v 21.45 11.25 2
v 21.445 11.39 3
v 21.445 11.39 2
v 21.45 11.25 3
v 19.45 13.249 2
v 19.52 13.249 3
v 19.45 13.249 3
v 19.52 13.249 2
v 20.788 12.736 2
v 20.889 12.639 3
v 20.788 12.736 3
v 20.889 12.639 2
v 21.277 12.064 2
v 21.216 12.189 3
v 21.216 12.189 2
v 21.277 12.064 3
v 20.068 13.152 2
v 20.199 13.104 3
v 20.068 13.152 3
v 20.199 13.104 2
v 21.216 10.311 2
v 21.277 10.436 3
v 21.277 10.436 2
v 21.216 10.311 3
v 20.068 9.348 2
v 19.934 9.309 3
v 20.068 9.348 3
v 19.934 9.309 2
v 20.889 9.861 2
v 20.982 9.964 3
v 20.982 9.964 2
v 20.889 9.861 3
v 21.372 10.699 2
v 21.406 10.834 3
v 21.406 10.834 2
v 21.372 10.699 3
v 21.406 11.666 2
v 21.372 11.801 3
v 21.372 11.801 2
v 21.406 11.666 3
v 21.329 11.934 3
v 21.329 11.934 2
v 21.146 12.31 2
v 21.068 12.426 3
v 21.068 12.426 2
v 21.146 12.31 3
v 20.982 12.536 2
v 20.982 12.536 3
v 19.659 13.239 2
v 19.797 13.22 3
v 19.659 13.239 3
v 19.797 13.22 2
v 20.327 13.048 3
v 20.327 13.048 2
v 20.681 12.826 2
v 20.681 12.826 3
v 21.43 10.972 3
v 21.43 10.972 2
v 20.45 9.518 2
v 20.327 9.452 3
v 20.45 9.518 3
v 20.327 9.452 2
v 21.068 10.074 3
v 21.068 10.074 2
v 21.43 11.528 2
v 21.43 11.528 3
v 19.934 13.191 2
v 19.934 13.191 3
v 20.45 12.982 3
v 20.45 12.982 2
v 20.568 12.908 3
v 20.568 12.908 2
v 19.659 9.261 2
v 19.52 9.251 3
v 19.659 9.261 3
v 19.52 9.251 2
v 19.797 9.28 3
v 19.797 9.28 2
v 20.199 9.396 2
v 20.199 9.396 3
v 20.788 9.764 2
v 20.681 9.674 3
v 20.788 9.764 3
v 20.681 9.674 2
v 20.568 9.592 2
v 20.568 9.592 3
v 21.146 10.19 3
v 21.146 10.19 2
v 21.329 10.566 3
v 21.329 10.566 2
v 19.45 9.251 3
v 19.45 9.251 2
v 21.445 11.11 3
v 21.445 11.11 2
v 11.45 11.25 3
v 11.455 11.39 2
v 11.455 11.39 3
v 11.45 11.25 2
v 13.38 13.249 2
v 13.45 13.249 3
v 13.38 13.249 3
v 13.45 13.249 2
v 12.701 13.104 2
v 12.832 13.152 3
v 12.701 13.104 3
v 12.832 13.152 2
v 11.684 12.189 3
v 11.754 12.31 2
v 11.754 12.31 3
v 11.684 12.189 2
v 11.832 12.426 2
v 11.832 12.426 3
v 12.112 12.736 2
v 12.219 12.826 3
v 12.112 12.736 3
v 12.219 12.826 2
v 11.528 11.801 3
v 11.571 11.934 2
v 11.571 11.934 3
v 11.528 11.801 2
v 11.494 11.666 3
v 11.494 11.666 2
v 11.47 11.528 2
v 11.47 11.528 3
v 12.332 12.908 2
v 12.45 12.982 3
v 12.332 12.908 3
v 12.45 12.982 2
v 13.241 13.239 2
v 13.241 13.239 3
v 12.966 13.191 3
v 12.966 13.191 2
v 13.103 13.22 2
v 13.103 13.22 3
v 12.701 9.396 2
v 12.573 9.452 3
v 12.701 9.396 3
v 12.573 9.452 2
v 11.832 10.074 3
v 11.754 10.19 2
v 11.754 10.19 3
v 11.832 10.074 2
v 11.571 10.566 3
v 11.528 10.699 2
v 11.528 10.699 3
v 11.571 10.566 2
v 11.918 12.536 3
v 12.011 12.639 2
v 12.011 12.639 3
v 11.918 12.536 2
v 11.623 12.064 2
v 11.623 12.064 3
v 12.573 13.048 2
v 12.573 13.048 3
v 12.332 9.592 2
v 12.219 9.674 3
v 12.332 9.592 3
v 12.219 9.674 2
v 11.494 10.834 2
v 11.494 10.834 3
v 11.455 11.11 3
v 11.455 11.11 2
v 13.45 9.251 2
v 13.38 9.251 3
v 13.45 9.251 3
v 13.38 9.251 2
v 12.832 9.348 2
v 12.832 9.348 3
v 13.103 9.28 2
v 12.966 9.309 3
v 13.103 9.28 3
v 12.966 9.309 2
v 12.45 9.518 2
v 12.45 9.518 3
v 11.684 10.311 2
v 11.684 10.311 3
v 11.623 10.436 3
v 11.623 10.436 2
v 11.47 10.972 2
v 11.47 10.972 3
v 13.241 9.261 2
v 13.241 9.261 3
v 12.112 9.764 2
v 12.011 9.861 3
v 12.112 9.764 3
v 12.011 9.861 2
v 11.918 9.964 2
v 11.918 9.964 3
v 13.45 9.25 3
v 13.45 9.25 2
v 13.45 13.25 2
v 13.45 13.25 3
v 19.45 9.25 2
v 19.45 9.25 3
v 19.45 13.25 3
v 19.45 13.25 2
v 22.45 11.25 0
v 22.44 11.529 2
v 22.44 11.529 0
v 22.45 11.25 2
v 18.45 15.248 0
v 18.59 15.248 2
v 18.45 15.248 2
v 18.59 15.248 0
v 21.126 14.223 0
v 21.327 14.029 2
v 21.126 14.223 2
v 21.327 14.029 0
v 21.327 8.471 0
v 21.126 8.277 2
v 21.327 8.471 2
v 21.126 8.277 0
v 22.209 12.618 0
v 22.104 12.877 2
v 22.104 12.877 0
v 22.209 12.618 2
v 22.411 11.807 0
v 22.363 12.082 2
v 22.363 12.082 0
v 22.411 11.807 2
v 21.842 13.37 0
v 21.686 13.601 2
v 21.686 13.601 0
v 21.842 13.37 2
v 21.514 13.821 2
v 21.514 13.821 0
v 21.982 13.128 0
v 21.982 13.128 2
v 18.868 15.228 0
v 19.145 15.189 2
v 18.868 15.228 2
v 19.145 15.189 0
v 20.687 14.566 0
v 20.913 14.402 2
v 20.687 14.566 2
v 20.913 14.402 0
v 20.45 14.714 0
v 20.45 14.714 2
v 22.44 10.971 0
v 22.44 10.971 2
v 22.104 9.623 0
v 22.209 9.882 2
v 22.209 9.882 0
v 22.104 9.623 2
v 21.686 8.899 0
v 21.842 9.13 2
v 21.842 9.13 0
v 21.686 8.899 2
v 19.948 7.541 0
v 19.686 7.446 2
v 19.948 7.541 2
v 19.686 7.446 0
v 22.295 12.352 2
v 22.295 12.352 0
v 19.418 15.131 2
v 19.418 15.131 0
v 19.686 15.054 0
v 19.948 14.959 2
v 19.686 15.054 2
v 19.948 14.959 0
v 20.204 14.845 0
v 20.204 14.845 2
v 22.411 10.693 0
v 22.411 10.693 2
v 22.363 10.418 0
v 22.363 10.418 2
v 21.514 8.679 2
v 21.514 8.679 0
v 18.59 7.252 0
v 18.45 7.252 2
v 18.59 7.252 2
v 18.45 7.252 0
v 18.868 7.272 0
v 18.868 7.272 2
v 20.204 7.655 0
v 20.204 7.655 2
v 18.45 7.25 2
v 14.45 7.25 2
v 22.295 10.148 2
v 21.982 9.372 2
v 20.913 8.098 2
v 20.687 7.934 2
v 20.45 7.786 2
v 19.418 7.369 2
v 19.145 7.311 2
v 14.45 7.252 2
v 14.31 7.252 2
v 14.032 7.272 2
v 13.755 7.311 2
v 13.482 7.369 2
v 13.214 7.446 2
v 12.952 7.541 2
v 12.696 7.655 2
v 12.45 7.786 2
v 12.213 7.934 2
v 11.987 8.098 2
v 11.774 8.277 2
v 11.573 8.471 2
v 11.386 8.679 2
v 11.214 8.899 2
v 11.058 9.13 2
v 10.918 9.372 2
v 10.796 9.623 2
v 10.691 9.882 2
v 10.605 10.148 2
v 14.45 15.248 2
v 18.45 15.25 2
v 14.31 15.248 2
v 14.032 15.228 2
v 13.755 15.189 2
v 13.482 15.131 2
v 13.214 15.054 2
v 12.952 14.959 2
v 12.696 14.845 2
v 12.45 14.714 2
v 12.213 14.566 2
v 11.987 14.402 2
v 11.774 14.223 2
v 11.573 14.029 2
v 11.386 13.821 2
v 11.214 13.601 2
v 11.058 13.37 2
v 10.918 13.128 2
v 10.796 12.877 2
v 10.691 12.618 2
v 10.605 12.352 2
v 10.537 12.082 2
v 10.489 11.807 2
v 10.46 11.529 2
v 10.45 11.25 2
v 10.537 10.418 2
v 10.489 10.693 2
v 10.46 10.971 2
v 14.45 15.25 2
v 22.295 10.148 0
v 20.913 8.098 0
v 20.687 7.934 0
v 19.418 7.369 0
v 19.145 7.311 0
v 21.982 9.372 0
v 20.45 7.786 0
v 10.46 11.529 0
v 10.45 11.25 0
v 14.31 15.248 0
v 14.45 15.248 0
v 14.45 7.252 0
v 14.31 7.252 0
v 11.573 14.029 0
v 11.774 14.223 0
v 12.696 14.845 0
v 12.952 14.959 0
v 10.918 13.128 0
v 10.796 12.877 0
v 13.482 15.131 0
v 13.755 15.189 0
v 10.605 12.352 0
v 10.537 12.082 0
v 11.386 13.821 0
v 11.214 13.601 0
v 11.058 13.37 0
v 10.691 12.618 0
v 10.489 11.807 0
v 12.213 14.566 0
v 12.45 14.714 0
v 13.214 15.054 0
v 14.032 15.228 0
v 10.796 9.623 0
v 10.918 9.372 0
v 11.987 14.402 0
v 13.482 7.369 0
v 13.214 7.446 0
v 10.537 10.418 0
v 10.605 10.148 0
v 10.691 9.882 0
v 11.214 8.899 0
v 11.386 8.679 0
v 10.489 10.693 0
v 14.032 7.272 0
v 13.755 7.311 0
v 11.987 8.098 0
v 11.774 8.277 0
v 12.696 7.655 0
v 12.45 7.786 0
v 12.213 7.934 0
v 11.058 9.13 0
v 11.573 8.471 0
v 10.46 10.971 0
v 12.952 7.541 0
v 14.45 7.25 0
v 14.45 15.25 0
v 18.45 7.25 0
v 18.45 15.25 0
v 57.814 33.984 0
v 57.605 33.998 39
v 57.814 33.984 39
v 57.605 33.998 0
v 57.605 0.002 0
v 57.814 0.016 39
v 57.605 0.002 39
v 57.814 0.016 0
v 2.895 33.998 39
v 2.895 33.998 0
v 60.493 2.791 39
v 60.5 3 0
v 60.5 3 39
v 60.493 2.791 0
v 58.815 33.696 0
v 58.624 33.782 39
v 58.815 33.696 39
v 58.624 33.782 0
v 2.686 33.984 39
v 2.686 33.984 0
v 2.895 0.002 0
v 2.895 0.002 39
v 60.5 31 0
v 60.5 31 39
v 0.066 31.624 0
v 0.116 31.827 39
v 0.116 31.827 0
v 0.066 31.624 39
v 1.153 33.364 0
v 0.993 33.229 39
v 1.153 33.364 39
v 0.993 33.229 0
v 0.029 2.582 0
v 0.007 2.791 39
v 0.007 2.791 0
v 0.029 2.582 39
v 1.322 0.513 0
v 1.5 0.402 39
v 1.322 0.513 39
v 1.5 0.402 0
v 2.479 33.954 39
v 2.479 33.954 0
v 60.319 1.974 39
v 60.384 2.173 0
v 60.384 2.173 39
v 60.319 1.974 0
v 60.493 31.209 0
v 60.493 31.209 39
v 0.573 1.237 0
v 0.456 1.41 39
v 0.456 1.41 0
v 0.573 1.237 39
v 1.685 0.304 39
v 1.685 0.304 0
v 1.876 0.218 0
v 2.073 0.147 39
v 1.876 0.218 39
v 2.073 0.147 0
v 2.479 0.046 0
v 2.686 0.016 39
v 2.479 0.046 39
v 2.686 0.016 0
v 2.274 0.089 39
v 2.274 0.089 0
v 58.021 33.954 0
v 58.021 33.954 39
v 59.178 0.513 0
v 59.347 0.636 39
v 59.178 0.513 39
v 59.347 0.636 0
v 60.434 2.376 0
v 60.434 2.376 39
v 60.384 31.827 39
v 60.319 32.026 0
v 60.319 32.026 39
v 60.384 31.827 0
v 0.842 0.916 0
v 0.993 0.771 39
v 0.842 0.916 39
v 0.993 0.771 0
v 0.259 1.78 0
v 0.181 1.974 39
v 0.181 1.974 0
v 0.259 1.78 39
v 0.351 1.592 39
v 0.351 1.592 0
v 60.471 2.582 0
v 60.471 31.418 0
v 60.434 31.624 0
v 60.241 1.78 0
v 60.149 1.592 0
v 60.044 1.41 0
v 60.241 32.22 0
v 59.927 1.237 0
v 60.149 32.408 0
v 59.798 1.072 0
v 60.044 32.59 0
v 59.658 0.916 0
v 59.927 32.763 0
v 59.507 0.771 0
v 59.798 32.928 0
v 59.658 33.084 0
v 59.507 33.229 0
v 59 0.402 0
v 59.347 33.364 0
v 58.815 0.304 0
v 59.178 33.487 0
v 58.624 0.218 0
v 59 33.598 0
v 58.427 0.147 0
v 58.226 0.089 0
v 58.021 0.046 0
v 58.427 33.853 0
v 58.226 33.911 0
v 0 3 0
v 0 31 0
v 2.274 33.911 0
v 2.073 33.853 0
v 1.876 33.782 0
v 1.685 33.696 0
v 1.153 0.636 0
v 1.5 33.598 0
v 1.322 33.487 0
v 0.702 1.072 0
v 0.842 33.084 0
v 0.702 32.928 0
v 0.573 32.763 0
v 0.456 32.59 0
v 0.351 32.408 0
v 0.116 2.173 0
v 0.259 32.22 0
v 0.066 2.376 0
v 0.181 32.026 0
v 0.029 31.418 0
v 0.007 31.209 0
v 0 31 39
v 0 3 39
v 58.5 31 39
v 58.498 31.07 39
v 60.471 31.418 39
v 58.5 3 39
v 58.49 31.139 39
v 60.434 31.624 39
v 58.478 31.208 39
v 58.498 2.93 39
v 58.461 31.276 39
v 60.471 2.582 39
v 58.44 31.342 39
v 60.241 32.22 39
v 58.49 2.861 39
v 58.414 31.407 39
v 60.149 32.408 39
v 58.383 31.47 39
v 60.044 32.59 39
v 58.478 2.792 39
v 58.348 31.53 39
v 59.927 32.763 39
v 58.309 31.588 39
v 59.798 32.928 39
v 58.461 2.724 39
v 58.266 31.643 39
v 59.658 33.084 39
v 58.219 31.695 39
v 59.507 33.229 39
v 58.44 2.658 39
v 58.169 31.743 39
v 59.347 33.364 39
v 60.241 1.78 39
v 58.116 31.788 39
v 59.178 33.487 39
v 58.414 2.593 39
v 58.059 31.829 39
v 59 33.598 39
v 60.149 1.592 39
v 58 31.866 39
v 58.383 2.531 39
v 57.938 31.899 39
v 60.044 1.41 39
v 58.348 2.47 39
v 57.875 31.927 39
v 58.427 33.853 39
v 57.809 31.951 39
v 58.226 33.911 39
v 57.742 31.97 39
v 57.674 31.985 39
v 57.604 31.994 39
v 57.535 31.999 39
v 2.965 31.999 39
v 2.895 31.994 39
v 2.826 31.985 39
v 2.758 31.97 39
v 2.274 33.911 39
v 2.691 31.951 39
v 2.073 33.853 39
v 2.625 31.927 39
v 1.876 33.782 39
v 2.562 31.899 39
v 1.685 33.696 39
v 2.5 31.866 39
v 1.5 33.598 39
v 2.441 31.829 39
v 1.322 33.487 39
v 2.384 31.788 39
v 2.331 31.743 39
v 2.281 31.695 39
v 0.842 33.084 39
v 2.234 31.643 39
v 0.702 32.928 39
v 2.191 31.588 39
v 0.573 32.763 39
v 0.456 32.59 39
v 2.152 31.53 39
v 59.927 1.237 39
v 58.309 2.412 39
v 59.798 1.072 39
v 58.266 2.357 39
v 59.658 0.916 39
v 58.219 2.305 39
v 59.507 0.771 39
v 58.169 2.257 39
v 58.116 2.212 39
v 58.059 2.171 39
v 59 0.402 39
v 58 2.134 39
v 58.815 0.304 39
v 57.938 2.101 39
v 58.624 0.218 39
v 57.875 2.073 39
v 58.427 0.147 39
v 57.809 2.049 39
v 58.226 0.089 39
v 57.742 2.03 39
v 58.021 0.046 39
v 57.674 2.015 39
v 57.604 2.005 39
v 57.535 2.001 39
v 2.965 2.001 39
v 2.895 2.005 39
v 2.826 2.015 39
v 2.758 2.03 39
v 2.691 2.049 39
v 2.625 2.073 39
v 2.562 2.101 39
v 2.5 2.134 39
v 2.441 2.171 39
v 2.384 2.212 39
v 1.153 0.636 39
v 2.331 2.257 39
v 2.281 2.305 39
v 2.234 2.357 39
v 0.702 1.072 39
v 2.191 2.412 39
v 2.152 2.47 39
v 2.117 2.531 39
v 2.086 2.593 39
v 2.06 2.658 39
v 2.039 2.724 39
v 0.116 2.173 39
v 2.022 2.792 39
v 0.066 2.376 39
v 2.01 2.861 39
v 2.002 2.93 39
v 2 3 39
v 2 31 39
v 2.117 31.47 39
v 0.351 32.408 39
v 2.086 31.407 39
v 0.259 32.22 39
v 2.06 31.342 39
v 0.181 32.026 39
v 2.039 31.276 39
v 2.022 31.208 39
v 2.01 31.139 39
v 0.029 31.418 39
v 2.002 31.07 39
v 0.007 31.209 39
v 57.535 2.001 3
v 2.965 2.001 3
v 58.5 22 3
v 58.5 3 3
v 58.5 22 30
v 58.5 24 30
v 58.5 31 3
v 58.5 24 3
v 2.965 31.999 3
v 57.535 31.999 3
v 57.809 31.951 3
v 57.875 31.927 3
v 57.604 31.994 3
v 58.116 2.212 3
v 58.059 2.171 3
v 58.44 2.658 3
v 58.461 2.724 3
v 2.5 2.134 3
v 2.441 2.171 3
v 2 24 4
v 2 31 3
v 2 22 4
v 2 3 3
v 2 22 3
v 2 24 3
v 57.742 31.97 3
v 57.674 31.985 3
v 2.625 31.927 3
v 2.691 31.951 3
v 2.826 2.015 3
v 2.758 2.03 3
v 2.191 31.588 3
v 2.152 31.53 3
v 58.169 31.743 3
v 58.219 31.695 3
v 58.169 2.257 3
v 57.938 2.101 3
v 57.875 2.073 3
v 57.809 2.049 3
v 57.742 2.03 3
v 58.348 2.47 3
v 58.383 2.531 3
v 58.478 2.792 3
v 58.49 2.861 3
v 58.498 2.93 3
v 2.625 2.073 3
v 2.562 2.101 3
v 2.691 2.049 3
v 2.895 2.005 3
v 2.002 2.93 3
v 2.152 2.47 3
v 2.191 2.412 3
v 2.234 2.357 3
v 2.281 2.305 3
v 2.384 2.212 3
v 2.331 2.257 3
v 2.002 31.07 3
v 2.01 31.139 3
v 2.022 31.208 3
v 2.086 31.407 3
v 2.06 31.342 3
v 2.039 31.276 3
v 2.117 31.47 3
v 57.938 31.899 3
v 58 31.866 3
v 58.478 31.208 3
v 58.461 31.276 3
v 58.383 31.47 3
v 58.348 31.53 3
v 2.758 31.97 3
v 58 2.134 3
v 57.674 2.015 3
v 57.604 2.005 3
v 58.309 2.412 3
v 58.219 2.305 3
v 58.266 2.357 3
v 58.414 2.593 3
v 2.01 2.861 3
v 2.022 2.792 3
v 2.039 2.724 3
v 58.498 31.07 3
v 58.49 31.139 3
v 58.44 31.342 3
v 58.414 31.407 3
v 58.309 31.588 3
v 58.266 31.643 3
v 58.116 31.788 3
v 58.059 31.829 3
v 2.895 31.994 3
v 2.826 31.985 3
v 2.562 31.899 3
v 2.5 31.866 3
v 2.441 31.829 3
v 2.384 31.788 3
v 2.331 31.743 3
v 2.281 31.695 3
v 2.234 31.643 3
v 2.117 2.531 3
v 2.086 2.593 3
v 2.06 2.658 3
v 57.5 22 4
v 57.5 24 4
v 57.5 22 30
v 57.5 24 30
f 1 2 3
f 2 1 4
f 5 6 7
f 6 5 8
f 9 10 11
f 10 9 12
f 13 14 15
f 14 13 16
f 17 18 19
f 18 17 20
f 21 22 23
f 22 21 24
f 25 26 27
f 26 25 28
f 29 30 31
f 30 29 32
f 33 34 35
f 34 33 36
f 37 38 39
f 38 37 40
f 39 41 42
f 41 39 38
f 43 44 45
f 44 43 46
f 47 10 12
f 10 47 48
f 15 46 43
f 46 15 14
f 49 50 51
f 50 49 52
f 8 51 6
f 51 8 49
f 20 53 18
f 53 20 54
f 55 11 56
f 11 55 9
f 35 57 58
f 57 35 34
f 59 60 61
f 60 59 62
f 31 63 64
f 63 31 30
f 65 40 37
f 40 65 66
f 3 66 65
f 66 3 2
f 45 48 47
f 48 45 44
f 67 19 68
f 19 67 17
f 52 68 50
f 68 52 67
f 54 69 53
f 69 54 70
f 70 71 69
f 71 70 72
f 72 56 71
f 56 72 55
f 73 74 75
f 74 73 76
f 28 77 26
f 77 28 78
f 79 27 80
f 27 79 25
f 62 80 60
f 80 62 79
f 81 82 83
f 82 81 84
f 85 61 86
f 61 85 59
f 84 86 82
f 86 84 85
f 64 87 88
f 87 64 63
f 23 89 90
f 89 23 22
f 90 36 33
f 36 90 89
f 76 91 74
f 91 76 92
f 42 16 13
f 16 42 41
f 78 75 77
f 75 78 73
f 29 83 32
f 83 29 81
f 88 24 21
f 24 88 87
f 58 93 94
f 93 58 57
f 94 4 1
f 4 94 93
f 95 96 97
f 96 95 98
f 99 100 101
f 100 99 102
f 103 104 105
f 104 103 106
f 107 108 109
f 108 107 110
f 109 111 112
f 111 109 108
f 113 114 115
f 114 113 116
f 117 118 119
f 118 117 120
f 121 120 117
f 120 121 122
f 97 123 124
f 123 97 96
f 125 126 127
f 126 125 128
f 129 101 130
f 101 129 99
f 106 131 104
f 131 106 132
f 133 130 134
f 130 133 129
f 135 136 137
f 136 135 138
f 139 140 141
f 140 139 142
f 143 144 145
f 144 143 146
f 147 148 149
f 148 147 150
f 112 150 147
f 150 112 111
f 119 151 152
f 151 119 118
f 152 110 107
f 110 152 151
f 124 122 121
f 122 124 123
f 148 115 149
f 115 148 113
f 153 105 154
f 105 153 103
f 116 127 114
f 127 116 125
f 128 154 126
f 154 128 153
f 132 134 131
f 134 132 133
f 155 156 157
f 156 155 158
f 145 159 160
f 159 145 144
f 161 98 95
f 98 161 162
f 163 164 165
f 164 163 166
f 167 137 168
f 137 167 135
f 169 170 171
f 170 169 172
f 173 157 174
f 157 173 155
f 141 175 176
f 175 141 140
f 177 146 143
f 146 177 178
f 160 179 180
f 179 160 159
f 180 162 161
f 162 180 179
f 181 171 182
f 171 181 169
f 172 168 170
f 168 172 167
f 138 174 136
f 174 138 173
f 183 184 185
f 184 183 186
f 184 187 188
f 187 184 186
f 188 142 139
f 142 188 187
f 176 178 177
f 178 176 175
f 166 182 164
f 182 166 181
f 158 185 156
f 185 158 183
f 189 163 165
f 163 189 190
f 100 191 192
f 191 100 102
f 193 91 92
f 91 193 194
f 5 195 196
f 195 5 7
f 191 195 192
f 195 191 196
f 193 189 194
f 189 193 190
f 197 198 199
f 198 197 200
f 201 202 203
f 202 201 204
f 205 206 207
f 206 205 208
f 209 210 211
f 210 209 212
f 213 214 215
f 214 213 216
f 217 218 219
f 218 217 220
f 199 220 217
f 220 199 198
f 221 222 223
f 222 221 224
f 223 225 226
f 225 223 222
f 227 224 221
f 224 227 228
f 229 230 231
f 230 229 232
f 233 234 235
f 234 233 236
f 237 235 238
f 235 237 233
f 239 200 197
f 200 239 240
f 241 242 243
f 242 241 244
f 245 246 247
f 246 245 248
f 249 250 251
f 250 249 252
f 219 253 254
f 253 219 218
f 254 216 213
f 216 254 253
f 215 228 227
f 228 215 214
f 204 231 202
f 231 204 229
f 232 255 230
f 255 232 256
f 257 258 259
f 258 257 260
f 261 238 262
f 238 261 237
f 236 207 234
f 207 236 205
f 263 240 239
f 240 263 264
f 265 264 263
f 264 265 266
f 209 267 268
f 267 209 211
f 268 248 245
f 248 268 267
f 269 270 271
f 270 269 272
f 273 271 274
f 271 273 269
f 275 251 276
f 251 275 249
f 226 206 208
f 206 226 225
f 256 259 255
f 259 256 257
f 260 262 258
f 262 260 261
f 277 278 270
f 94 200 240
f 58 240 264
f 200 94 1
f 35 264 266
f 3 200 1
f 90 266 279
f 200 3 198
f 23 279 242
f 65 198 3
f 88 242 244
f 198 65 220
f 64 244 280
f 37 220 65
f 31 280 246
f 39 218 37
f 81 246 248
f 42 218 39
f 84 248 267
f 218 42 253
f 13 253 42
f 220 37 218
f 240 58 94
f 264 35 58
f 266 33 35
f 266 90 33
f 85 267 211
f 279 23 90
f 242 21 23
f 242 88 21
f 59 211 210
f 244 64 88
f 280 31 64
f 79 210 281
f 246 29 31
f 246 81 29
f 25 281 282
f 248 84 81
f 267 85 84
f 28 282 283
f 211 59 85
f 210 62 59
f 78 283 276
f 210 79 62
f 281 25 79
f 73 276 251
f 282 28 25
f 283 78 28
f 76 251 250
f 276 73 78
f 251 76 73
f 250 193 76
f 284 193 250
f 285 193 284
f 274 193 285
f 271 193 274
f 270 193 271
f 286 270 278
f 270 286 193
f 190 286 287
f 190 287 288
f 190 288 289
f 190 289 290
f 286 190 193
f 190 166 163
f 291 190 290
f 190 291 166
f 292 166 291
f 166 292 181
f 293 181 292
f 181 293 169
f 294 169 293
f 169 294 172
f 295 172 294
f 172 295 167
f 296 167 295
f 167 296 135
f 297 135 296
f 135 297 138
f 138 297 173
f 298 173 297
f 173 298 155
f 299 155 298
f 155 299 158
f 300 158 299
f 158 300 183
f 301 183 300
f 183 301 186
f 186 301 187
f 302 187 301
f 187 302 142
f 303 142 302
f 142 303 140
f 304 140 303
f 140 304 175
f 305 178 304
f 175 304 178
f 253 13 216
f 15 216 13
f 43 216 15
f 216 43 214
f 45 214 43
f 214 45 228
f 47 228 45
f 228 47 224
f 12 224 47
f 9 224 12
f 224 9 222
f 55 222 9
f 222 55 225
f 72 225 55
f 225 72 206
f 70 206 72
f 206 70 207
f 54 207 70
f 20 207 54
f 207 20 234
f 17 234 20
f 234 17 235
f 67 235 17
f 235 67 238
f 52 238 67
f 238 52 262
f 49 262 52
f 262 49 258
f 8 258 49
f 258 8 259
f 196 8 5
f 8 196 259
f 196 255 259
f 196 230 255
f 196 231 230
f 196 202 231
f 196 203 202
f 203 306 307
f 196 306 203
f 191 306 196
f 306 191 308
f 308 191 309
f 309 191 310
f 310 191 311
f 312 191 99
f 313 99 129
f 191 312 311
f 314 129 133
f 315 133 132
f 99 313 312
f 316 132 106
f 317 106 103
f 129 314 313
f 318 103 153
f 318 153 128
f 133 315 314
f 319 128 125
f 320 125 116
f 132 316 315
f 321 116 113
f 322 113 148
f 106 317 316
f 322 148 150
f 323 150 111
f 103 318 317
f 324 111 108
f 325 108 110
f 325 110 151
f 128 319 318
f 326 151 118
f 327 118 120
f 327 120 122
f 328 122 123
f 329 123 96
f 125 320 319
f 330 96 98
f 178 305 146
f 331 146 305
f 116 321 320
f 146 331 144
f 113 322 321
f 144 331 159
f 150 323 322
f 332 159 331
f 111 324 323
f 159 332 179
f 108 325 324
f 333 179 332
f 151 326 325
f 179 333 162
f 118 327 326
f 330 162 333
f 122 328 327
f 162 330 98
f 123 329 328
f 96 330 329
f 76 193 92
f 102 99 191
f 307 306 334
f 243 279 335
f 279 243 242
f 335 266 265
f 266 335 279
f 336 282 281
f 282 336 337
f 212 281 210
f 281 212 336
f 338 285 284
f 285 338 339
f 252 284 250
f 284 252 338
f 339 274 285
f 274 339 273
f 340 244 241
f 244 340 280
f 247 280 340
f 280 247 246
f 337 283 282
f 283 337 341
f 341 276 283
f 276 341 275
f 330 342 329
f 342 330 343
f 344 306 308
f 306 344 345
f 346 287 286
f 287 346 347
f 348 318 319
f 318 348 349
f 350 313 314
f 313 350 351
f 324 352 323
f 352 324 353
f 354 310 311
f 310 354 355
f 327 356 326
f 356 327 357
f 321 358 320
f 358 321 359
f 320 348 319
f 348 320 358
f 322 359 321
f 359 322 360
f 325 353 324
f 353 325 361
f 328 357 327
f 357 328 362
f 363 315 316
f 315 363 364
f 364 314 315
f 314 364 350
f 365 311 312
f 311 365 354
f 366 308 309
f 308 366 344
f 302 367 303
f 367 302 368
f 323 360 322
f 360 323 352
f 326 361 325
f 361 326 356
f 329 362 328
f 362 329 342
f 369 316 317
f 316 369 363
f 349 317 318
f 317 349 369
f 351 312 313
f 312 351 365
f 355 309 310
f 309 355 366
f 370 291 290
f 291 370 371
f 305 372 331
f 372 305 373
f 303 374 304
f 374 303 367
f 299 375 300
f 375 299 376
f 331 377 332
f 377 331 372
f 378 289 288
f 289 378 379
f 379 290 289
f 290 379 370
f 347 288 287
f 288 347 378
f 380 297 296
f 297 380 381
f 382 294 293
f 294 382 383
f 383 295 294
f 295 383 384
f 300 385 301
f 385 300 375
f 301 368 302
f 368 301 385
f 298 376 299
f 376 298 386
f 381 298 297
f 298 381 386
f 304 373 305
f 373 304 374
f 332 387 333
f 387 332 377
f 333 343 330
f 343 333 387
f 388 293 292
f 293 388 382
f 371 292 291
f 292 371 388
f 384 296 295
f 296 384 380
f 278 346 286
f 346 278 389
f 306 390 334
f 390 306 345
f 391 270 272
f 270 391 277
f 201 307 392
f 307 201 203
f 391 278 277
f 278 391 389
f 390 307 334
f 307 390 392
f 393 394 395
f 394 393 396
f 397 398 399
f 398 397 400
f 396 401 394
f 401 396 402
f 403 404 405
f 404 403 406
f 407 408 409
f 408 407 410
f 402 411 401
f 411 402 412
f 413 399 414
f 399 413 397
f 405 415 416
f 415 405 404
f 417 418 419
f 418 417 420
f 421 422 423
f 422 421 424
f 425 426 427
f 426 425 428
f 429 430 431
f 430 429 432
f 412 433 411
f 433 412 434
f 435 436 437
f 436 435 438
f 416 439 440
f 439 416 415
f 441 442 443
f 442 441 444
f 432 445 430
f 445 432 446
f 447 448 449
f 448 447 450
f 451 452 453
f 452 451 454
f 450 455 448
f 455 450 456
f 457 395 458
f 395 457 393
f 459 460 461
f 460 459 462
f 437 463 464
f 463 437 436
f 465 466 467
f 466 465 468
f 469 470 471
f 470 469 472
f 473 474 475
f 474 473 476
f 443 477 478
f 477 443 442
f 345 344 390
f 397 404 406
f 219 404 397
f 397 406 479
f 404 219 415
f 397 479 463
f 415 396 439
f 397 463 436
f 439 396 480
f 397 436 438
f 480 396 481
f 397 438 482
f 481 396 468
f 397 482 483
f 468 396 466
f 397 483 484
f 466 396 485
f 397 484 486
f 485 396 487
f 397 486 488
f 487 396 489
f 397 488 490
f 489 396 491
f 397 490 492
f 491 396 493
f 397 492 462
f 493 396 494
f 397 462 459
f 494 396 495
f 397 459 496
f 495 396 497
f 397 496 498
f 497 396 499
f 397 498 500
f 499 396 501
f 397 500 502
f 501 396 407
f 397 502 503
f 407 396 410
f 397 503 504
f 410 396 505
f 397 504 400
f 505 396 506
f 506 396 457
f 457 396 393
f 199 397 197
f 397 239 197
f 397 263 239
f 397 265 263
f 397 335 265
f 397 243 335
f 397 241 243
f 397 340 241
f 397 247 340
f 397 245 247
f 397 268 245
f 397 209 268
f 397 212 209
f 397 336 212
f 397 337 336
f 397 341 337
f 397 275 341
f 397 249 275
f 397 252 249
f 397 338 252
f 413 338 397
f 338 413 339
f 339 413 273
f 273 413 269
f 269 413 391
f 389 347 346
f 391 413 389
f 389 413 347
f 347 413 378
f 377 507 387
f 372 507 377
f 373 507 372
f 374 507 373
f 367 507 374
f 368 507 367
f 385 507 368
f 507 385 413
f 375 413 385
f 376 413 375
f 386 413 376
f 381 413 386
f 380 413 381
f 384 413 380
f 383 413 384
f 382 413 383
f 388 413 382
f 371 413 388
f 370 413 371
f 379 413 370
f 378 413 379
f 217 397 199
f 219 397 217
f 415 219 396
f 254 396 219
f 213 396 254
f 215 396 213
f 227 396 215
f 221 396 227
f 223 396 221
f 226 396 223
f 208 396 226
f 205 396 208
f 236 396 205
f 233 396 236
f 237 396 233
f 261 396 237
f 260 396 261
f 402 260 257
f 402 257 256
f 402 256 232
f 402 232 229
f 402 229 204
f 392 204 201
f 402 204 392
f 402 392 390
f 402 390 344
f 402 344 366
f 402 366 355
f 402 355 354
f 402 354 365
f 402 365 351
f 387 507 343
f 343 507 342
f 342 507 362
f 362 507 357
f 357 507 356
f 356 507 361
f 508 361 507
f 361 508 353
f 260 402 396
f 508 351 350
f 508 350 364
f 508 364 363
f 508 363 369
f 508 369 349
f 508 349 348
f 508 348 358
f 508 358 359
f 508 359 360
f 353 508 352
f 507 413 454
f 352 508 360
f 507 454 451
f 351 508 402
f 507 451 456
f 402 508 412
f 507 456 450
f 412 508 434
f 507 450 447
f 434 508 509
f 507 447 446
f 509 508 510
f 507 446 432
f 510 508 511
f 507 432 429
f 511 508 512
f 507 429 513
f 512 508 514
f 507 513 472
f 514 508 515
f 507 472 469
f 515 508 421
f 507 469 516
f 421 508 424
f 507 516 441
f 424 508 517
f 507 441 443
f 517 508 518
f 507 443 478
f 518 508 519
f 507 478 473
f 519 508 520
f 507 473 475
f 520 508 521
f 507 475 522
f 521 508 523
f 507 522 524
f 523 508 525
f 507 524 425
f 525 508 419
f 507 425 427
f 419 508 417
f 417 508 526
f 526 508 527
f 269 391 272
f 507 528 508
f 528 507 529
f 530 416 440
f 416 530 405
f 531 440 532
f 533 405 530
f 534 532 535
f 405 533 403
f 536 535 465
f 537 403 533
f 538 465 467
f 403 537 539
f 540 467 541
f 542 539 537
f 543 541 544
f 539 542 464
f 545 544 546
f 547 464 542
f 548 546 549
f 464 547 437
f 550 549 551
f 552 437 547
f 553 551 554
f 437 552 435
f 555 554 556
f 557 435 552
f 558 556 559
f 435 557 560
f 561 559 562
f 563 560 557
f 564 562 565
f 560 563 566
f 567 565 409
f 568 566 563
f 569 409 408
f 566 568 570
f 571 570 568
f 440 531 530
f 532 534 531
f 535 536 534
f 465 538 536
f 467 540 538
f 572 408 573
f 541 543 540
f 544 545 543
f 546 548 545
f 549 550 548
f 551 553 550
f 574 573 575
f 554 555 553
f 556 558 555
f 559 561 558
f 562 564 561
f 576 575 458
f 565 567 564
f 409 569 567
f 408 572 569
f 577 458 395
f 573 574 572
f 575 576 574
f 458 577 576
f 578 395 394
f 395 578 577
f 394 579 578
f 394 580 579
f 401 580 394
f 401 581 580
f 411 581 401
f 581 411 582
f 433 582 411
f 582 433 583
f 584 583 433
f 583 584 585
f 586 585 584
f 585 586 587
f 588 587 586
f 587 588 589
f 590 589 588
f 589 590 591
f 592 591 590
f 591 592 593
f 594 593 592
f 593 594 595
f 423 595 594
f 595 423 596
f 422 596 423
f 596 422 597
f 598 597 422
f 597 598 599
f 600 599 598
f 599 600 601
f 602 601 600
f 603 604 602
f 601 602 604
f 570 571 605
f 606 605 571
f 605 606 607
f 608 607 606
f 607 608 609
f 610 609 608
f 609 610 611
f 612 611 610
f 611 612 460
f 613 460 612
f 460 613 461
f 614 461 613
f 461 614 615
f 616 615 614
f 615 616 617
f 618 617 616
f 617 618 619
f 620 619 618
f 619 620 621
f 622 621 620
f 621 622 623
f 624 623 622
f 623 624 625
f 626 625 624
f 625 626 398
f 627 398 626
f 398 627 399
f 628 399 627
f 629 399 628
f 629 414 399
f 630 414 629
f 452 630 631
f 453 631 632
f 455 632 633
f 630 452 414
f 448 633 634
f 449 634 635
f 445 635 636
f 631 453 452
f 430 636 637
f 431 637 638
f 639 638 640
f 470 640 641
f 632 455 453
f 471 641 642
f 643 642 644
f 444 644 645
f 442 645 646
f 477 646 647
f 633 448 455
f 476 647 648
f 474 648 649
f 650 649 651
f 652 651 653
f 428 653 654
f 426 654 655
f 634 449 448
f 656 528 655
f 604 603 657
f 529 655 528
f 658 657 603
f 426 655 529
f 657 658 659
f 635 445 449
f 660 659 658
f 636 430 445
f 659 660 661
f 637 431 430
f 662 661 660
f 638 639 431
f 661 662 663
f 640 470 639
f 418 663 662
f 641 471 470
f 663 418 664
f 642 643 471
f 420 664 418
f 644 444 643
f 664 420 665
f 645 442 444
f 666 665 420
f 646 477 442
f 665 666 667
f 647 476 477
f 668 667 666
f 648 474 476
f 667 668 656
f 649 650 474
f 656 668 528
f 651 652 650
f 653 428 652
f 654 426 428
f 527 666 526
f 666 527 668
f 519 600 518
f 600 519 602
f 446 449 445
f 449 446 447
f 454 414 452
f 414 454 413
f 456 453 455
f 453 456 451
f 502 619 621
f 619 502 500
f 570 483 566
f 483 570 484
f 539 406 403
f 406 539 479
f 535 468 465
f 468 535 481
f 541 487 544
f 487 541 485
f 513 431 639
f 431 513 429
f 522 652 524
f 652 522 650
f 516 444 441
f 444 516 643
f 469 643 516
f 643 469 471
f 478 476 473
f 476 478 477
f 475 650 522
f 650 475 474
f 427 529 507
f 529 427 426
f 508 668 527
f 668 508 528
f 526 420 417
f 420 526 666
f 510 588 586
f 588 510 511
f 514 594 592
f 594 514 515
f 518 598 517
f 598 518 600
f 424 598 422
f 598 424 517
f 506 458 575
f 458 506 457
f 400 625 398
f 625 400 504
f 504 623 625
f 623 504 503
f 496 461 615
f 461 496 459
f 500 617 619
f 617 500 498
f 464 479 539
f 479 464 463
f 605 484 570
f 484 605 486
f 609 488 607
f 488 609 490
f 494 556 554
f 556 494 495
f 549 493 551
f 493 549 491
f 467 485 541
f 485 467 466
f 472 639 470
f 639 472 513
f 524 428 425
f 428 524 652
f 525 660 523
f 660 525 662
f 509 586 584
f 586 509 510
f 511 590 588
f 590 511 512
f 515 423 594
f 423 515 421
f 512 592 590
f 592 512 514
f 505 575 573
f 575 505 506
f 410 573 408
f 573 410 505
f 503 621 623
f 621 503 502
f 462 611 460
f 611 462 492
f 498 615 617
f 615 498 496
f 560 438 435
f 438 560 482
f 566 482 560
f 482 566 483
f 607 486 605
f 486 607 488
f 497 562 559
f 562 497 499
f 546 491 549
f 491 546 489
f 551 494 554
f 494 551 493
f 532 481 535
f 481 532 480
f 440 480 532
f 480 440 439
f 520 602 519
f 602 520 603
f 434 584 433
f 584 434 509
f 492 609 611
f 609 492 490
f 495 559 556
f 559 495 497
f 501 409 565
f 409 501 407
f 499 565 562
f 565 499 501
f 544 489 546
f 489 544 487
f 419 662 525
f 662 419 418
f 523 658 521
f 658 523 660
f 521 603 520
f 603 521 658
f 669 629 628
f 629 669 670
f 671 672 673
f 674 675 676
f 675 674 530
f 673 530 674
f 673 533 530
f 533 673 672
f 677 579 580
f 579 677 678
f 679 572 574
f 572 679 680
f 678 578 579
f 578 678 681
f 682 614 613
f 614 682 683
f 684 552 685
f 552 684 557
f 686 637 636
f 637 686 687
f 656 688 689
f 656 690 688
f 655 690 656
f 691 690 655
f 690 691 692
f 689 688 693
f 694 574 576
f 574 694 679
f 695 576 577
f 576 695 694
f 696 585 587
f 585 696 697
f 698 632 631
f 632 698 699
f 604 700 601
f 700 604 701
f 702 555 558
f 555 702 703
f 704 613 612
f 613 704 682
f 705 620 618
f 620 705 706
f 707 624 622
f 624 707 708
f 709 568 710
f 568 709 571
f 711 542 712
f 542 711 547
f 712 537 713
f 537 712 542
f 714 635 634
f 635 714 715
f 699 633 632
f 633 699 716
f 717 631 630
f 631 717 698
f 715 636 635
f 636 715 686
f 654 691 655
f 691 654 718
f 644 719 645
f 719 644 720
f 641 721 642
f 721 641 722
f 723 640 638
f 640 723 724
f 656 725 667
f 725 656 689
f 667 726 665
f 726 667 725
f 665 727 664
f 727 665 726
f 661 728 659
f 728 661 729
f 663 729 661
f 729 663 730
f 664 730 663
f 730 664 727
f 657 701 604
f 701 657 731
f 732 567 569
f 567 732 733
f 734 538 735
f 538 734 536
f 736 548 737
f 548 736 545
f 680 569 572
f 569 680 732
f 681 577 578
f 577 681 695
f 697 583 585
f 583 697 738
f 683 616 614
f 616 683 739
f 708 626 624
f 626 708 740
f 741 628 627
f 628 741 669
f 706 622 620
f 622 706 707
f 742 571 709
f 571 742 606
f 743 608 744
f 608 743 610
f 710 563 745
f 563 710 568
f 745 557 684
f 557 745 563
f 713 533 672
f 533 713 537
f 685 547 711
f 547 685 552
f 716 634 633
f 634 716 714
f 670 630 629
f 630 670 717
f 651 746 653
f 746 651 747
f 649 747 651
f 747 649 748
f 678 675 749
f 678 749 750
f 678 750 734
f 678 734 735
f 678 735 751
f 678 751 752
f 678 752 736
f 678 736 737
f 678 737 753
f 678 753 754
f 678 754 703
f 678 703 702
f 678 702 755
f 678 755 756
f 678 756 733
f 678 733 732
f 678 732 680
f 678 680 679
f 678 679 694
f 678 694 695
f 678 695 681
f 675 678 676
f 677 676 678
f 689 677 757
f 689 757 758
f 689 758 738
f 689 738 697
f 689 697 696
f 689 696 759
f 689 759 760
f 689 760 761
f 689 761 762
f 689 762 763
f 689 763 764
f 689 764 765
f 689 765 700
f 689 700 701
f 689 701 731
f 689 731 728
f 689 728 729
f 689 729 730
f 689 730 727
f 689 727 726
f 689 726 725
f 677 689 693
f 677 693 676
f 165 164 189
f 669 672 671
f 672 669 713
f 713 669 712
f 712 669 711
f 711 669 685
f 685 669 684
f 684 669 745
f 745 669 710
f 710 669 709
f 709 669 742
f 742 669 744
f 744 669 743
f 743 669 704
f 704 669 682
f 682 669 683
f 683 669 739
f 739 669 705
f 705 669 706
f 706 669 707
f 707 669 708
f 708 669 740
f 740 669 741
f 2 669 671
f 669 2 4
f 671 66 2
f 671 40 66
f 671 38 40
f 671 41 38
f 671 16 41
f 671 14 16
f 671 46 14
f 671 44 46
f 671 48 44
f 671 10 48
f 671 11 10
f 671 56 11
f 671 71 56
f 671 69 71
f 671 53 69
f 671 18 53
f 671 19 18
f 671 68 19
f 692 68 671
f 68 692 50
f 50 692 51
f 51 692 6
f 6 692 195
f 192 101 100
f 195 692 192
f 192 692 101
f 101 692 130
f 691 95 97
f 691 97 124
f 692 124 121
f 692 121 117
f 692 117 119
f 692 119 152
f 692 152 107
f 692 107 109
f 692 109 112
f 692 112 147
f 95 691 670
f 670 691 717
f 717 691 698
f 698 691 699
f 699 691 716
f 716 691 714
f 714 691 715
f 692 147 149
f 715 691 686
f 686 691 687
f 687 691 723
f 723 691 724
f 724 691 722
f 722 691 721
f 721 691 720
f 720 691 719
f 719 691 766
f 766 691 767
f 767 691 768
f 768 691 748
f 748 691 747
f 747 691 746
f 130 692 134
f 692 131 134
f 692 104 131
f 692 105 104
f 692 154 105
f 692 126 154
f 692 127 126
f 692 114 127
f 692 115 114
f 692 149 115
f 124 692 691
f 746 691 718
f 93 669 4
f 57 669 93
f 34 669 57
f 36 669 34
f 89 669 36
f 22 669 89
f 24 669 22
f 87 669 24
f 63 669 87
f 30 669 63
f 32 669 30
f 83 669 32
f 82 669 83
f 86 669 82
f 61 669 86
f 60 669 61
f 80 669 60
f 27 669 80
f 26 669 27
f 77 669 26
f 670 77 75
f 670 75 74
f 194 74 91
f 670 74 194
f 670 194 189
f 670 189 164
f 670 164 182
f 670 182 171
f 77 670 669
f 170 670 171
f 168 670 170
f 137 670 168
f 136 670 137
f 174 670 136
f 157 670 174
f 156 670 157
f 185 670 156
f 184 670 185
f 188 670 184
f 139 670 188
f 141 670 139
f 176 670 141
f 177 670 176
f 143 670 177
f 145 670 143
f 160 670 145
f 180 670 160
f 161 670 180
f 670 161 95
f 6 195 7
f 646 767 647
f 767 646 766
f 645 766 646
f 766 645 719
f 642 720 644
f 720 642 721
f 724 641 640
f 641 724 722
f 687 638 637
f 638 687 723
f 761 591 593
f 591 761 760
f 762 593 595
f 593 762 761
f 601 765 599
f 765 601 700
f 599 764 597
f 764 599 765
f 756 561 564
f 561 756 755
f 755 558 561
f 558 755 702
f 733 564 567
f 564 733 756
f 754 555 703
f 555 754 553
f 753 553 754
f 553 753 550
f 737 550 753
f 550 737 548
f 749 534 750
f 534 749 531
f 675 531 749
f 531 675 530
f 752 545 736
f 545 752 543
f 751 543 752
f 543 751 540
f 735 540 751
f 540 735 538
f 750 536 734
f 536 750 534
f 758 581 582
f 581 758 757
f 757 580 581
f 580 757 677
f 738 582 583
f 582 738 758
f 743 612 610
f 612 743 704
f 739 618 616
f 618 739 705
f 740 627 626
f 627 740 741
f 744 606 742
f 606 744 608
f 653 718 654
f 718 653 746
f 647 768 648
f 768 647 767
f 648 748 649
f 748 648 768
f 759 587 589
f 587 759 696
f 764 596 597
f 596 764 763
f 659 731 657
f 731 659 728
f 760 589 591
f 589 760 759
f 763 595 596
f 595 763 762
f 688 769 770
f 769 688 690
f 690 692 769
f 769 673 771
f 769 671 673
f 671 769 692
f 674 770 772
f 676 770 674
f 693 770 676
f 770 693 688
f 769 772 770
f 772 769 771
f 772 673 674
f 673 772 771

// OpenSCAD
// Simple Cover for the Iridium Mini Radio Beacon with USB opening

$fn=90; // fragments
wall = 2.0; // wall thickness
end_wall = 3.0; // end wall thickness
internal_width = 56.5; // internal width (X) of the cover
internal_depth = 30.0; // internal depth (Y) of the cover
internal_height = 35.0; // internal height (Z) of the cover
lid_insert = 1.0; // extra height for the lid insert

battery_support_height = 1.0; // Height (Z) of the battery support above the floor
battery_support_depth = 2.0; // Depth (Y) of the battery support
battery_support_offset = 5.0; // Y offset of the battery support

battery_support_2_width = 1.0; // Width (X) of the battery support from the wall
battery_support_2_height = 27.0; // Internal height (Z) of the battery support

internal_corner_radius = 1.0; // radius of the internal corner cylinder

usb_r = 2.0; // radius of the opening for the USB connector
usb_width = 10.0; // total width of the opening for the USB
usb_height = 1.0; // thickness of the opening for the USB connector
usb_recess_r = 4.0; // radius of the recess for the USB connector body
usb_recess_width = 12.0; // total width of the recess for the USB connector body
usb_x_offset = -13.8; // X offset of the USB connector
usb_y_offset = 5.75; // y offset of the USB connector

height = internal_height + end_wall + lid_insert; // cover external height (Z)
width = internal_width + (2 * wall); // cover external width (X)
depth = internal_depth + (2 * wall); // cover external depth (Y)

external_corner_radius = internal_corner_radius + wall; // external corner radius

module cover()
{
    translate([external_corner_radius, external_corner_radius, 0])
        minkowski() {
            cube([(width - (2 * external_corner_radius)), (depth - (2 * external_corner_radius)), (height / 2)]);
            cylinder(h=(height / 2), r=external_corner_radius);
        }
}

module void()
// Void will be higher than required to avoid zero thickness skin across opening
{
    translate([external_corner_radius, external_corner_radius, end_wall])
        minkowski() {
            cube([(internal_width - (2 * internal_corner_radius)), (internal_depth - (2 * internal_corner_radius)), (height / 2)]);
            cylinder(h=(height / 2), r=internal_corner_radius);
        }
}

module usb_opening_end_1()
// Cylinder is taller than it needs to be to avoid zero thickness skins
{
    translate([((usb_width / 2) - usb_r),0,usb_height]) {
        cylinder(h=end_wall,r=usb_r);
    }
}

module usb_opening_end_2()
// Cylinder is taller than it needs to be to avoid zero thickness skins
{
    translate([(0-((usb_width / 2) - usb_r)),0,usb_height]) {
        cylinder(h=end_wall,r=usb_r);
    }
}

module usb_opening_mid()
// Cube is taller than it needs to be to avoid zero thickness skins
{
    translate([(-0.5 * (usb_width - (2 * usb_r))), (-0.5 * (2 * usb_r)), usb_height]) {
        cube([(usb_width - (2 * usb_r)), (2 * usb_r), end_wall]);
    }
}

module usb_recess_end_1()
// Cylinder is taller than it needs to be to avoid zero thickness skins
{
    translate([((usb_recess_width / 2) - usb_recess_r), 0, (0 - usb_height)]) {
        cylinder(h=end_wall, r=usb_recess_r);
    }
}

module usb_recess_end_2()
// Cylinder is taller than it needs to be to avoid zero thickness skins
{
    translate([(0-((usb_recess_width / 2) - usb_recess_r)), 0, (0 - usb_height)]) {
        cylinder(h=end_wall, r=usb_recess_r);
    }
}

module usb_recess_mid()
// Cube is taller than it needs to be to avoid zero thickness skins
{
    translate([(-0.5 * (usb_recess_width - (2 * usb_recess_r))), (-0.5 * (2 * usb_recess_r)), (0 - usb_height)]) {
        cube([(usb_recess_width - (2 * usb_recess_r)), (2 * usb_recess_r), end_wall]);
    }
}

module usb()
{
    translate([((width / 2) + usb_x_offset), ((depth / 2) - usb_y_offset), 0]) {
        union() {
            usb_opening_end_1();
            usb_opening_end_2();
            usb_opening_mid();
            usb_recess_end_1();
            usb_recess_end_2();
            usb_recess_mid();
        }
    }
}

module battery_support()
{
    translate([0, ((depth/2) + battery_support_offset), 0]) {
        cube([width, battery_support_depth, (end_wall + battery_support_height)]);
    }
}

module battery_support_2()
{
    translate([(width - (wall + battery_support_2_width)), ((depth/2) + battery_support_offset), 0]) {
        cube([(wall + battery_support_2_width), battery_support_depth, (end_wall + battery_support_2_height)]);
    }
}

module finished_cover()
{
    union() {
        difference() {
            cover();
            void();
            usb();
        }
        battery_support();
        battery_support_2();
    }
}

finished_cover();
